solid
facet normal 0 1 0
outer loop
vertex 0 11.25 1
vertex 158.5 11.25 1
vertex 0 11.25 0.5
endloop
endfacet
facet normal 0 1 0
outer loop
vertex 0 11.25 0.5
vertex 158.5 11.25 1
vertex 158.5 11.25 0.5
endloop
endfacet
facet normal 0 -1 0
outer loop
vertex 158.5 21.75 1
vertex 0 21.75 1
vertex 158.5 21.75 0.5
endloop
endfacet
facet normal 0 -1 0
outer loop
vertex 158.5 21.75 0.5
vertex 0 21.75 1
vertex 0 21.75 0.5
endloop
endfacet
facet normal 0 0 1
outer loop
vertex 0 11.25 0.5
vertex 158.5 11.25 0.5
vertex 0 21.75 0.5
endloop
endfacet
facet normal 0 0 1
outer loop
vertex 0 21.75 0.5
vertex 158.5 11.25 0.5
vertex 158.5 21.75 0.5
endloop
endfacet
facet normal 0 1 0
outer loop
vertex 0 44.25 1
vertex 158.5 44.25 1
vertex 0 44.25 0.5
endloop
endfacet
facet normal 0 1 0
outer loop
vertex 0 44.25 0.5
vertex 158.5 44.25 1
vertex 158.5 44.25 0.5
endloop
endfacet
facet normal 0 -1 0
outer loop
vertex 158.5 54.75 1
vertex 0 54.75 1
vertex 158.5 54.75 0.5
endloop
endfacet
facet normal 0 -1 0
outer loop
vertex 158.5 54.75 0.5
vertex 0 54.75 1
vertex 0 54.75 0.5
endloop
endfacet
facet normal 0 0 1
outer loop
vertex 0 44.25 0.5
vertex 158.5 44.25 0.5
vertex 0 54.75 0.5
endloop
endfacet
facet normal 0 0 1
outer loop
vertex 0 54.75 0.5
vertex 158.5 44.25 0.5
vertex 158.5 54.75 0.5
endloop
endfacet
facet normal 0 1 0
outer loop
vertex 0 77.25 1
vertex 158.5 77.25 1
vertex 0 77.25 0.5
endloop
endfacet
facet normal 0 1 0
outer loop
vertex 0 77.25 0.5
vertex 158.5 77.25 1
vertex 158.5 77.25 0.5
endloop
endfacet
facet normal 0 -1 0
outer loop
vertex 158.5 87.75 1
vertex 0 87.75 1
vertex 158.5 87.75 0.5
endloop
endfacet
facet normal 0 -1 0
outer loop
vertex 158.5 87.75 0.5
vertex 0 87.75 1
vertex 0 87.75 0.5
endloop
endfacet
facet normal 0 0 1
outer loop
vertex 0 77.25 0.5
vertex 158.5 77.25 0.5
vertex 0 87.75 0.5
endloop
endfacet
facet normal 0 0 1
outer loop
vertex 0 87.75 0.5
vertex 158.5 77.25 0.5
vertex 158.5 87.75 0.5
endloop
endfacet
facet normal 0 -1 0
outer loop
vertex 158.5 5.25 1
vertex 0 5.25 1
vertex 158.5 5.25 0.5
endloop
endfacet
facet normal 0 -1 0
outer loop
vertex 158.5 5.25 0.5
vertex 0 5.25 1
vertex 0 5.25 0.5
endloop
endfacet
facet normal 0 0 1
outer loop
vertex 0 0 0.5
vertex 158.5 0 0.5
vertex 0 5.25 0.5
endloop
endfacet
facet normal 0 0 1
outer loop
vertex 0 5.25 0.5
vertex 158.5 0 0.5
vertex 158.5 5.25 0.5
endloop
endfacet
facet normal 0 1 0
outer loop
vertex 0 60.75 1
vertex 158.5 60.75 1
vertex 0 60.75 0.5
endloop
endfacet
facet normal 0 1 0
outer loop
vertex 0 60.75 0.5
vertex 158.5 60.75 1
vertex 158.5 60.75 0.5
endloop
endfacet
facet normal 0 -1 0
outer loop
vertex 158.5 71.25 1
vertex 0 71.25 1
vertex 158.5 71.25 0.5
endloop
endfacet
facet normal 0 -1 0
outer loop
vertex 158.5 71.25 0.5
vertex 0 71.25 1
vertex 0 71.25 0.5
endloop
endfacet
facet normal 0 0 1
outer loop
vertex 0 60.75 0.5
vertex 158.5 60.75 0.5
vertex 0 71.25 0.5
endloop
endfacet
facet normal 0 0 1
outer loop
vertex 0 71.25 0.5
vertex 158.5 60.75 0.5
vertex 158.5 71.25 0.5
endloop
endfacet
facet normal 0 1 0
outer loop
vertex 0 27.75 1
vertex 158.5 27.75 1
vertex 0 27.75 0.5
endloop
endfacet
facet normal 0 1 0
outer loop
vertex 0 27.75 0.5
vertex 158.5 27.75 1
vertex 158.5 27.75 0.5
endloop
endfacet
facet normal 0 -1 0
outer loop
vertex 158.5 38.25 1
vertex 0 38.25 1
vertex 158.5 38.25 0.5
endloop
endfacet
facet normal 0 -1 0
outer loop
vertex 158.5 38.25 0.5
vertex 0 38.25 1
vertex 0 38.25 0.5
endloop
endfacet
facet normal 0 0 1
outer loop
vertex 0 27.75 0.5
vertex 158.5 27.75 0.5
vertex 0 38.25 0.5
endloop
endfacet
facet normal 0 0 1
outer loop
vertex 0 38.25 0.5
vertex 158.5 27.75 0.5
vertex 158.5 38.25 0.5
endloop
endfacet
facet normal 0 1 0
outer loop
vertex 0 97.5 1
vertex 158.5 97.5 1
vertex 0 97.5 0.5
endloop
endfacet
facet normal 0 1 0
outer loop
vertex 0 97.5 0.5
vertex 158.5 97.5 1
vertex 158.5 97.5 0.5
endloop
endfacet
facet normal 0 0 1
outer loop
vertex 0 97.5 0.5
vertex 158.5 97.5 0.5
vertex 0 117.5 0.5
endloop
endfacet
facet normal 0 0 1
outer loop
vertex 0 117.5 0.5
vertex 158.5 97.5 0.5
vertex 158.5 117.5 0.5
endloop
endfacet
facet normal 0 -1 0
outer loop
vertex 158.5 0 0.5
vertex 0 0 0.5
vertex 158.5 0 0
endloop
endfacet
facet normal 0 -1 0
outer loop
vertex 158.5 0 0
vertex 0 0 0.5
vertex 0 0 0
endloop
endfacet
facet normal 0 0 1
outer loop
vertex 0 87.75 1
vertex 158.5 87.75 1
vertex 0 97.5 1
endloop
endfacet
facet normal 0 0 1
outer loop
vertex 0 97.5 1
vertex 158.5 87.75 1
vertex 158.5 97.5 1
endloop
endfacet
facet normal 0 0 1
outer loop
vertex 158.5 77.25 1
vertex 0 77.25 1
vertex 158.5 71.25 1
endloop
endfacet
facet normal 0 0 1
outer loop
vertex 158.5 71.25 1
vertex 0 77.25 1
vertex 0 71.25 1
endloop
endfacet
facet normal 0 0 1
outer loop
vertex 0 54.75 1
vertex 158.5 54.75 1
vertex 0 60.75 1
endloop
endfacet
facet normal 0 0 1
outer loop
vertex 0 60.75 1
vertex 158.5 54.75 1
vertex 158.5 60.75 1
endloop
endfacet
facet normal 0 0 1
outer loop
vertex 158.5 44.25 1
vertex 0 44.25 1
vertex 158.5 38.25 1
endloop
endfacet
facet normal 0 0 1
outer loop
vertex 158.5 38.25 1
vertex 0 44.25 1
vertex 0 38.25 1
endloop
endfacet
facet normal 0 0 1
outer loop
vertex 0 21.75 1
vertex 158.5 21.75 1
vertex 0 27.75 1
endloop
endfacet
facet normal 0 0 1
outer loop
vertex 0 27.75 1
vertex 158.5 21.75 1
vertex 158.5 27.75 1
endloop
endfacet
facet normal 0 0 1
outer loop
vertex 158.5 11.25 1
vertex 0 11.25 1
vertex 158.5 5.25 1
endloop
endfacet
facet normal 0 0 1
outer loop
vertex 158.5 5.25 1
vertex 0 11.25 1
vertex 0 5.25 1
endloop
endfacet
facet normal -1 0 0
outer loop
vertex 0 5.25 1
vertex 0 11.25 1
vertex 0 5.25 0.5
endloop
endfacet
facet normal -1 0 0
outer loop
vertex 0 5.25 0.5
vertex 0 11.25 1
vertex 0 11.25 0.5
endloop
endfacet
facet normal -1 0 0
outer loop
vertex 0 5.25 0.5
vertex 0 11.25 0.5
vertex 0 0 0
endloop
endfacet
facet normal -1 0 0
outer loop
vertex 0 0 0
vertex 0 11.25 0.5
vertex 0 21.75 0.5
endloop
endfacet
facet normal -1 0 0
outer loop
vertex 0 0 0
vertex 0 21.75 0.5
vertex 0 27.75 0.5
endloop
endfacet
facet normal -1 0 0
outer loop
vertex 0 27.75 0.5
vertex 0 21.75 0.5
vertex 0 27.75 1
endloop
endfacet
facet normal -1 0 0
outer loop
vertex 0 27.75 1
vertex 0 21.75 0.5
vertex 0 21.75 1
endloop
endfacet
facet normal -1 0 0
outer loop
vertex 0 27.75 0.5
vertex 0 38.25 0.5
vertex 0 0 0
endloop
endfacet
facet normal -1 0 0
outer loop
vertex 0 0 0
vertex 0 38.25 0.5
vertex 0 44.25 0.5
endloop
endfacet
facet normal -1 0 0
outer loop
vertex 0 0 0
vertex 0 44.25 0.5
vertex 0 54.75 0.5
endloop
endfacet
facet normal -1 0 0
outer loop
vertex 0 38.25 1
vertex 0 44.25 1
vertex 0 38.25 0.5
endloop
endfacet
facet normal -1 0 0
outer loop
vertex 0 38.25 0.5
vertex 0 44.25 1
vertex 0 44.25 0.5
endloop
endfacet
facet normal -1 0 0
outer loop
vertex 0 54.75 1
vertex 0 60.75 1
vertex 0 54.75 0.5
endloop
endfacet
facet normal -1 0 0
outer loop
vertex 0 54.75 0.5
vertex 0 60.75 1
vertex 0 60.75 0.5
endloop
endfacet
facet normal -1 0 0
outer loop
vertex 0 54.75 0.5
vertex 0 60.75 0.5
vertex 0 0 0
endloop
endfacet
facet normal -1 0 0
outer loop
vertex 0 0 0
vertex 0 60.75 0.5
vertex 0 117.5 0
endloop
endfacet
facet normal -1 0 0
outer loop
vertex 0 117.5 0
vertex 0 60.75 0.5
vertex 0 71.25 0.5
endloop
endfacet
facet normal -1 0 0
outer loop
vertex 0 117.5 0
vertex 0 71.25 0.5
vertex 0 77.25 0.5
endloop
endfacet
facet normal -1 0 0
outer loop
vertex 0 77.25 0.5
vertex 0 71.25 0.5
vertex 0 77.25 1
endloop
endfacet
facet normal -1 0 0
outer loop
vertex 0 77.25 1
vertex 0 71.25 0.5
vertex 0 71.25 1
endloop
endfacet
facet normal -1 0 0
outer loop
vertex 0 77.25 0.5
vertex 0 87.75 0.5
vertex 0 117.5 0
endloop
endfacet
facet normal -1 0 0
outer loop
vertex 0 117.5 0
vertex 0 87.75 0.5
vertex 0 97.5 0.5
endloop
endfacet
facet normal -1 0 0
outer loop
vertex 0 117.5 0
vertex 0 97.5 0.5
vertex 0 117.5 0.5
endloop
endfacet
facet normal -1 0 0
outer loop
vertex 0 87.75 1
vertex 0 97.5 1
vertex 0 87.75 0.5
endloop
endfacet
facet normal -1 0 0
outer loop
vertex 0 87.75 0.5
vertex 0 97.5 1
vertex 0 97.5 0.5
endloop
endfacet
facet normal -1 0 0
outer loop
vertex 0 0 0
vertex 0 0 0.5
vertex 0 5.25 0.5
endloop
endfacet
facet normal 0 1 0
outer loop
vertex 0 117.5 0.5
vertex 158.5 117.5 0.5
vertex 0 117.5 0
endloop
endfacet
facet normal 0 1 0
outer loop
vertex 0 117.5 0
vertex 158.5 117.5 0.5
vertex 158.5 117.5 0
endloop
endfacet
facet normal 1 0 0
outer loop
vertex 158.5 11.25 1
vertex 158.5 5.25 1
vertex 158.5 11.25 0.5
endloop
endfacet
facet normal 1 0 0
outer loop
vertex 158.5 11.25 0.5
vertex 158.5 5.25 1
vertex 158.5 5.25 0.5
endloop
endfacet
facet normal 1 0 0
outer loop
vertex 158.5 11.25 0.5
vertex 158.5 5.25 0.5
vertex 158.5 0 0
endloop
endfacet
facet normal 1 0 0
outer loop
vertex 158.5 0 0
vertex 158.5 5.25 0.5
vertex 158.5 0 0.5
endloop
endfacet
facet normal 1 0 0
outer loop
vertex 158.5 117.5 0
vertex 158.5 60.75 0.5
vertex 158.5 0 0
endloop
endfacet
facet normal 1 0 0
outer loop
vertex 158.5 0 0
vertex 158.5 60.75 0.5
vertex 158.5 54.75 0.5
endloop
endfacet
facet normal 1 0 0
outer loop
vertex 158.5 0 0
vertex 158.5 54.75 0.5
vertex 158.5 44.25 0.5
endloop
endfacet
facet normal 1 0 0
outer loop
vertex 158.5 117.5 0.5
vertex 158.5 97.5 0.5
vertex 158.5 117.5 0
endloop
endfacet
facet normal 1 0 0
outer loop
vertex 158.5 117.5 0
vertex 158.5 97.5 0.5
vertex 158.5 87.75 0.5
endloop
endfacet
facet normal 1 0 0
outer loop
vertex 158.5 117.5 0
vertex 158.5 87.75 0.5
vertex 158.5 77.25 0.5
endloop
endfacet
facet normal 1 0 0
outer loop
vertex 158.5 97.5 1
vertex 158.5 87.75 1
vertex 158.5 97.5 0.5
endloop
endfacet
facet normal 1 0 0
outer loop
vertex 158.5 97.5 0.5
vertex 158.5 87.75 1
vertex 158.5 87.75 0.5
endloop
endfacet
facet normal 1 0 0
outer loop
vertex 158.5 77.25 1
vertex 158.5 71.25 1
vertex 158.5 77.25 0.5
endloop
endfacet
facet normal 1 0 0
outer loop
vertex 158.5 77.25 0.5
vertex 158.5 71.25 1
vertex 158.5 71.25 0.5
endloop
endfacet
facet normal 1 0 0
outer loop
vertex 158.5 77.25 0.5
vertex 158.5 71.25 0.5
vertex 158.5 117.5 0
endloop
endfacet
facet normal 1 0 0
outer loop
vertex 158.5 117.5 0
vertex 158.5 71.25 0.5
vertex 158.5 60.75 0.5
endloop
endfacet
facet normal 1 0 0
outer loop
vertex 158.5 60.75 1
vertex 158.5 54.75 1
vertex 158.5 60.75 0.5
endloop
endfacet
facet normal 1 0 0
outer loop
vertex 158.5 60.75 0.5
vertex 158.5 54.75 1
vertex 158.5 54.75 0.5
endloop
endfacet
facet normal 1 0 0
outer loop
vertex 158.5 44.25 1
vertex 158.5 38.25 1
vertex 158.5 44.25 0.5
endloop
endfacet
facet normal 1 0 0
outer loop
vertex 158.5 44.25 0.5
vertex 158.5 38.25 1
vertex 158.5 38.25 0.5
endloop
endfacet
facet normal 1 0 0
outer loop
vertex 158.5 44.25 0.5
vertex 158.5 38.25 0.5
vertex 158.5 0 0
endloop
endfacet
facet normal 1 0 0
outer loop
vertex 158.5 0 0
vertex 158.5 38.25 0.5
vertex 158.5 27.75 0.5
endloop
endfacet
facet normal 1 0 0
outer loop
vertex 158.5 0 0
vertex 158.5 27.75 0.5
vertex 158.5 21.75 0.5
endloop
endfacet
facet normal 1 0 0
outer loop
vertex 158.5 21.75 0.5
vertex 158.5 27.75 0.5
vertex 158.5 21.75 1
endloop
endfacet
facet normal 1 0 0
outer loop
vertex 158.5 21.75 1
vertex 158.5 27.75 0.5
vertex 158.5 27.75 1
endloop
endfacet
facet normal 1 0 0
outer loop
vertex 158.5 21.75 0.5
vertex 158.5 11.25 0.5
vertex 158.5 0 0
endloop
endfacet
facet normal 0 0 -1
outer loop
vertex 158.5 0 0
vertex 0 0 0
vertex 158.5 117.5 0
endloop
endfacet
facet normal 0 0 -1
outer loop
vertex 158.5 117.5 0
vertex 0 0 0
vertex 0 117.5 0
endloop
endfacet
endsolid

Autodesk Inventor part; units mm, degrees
ref_plane "YZ Plane" through (0, 0, 0) normal (1, 0, 0) x (0, 1, 0)
ref_plane "XZ Plane" through (0, 0, 0) normal (0, 1, 0) x (-1, 0, 0)
ref_plane "XY Plane" through (0, 0, 0) normal (0, 0, 1) x (1, 0, 0)
sketch "Эскиз3" plane through (0, 0, 0) normal (0, 0, 1) x (1, 0, 0)
  line L0 (0, 0) -> (158.5, 0)
  line L1 (158.5, 0) -> (158.5, 117.5)
  line L2 (158.5, 117.5) -> (0, 117.5)
  line L3 (0, 117.5) -> (0, 0)
  dimension "d25" = 117.5
  dimension "d26" = 158.5
extrude "Выдавливание2" add sketch "Эскиз3" along normal blind 1
sketch "Эскиз4" plane through (0, 0, 1) normal (0, 0, 1) x (1, 0, 0)
  line L0 (158.5, 117.5) -> (0, 117.5) projected
  line L1 (0, 117.5) -> (158.5, 117.5)
  line L2 (158.5, 117.5) -> (158.5, 97.5)
  line L3 (158.5, 97.5) -> (0, 97.5)
  line L4 (0, 97.5) -> (0, 117.5)
  line L5 (0, 117.5) -> (0, 0) projected
  line L6 (0, 87.75) -> (158.5, 87.75)
  line L7 (158.5, 87.75) -> (158.5, 77.25)
  line L8 (158.5, 77.25) -> (0, 77.25)
  line L9 (0, 77.25) -> (0, 87.75)
  line L10 (0, 71.25) -> (158.5, 71.25)
  line L11 (0, 60.75) -> (158.5, 60.75)
  line L12 (0, 54.75) -> (158.5, 54.75)
  line L13 (0, 44.25) -> (158.5, 44.25)
  line L14 (0, 38.25) -> (158.5, 38.25)
  line L15 (0, 27.75) -> (158.5, 27.75)
  line L16 (0, 21.75) -> (158.5, 21.75)
  line L17 (0, 11.25) -> (158.5, 11.25)
  line L18 (0, 5.25) -> (158.5, 5.25)
  line L19 (0, 0) -> (158.5, 0) projected
  line L20 (0, 0) -> (158.5, 0)
  line L21 (0, 71.25) -> (0, 60.75)
  line L22 (0, 54.75) -> (0, 44.25)
  line L23 (0, 38.25) -> (0, 27.75)
  line L24 (0, 21.75) -> (0, 11.25)
  line L25 (0, 5.25) -> (0, 0)
  line L26 (158.5, 0) -> (158.5, 5.25)
  line L27 (158.5, 11.25) -> (158.5, 21.75)
  line L28 (158.5, 27.75) -> (158.5, 38.25)
  line L29 (158.5, 44.25) -> (158.5, 54.75)
  line L30 (158.5, 0) -> (158.5, 117.5) projected
  line L31 (158.5, 60.75) -> (158.5, 71.25)
  dimension "d29" = 20
  dimension "d30" = 9.75
  dimension "d31" = 10.5
  dimension "d32" = 6
  dimension "d35" = 10.5
  dimension "d36" = 6
  dimension "d37" = 10.5
  dimension "d38" = 6
  dimension "d39" = 10.5
  dimension "d40" = 6
  dimension "d41" = 10.5
  dimension "d42" = 6
  dimension "d43" = 5.25
extrude "Выдавливание3" cut sketch "Эскиз4" against normal blind 0.5 contours L2 L3 L4 L0 | L7 L8 L5 L6 | L30 L11 L5 L10 | L29 L13 L5 L12 | L28 L15 L5 L14 | L27 L17 L5 L16 | L26 L19 L5 L18
properties part number "Подложка"
